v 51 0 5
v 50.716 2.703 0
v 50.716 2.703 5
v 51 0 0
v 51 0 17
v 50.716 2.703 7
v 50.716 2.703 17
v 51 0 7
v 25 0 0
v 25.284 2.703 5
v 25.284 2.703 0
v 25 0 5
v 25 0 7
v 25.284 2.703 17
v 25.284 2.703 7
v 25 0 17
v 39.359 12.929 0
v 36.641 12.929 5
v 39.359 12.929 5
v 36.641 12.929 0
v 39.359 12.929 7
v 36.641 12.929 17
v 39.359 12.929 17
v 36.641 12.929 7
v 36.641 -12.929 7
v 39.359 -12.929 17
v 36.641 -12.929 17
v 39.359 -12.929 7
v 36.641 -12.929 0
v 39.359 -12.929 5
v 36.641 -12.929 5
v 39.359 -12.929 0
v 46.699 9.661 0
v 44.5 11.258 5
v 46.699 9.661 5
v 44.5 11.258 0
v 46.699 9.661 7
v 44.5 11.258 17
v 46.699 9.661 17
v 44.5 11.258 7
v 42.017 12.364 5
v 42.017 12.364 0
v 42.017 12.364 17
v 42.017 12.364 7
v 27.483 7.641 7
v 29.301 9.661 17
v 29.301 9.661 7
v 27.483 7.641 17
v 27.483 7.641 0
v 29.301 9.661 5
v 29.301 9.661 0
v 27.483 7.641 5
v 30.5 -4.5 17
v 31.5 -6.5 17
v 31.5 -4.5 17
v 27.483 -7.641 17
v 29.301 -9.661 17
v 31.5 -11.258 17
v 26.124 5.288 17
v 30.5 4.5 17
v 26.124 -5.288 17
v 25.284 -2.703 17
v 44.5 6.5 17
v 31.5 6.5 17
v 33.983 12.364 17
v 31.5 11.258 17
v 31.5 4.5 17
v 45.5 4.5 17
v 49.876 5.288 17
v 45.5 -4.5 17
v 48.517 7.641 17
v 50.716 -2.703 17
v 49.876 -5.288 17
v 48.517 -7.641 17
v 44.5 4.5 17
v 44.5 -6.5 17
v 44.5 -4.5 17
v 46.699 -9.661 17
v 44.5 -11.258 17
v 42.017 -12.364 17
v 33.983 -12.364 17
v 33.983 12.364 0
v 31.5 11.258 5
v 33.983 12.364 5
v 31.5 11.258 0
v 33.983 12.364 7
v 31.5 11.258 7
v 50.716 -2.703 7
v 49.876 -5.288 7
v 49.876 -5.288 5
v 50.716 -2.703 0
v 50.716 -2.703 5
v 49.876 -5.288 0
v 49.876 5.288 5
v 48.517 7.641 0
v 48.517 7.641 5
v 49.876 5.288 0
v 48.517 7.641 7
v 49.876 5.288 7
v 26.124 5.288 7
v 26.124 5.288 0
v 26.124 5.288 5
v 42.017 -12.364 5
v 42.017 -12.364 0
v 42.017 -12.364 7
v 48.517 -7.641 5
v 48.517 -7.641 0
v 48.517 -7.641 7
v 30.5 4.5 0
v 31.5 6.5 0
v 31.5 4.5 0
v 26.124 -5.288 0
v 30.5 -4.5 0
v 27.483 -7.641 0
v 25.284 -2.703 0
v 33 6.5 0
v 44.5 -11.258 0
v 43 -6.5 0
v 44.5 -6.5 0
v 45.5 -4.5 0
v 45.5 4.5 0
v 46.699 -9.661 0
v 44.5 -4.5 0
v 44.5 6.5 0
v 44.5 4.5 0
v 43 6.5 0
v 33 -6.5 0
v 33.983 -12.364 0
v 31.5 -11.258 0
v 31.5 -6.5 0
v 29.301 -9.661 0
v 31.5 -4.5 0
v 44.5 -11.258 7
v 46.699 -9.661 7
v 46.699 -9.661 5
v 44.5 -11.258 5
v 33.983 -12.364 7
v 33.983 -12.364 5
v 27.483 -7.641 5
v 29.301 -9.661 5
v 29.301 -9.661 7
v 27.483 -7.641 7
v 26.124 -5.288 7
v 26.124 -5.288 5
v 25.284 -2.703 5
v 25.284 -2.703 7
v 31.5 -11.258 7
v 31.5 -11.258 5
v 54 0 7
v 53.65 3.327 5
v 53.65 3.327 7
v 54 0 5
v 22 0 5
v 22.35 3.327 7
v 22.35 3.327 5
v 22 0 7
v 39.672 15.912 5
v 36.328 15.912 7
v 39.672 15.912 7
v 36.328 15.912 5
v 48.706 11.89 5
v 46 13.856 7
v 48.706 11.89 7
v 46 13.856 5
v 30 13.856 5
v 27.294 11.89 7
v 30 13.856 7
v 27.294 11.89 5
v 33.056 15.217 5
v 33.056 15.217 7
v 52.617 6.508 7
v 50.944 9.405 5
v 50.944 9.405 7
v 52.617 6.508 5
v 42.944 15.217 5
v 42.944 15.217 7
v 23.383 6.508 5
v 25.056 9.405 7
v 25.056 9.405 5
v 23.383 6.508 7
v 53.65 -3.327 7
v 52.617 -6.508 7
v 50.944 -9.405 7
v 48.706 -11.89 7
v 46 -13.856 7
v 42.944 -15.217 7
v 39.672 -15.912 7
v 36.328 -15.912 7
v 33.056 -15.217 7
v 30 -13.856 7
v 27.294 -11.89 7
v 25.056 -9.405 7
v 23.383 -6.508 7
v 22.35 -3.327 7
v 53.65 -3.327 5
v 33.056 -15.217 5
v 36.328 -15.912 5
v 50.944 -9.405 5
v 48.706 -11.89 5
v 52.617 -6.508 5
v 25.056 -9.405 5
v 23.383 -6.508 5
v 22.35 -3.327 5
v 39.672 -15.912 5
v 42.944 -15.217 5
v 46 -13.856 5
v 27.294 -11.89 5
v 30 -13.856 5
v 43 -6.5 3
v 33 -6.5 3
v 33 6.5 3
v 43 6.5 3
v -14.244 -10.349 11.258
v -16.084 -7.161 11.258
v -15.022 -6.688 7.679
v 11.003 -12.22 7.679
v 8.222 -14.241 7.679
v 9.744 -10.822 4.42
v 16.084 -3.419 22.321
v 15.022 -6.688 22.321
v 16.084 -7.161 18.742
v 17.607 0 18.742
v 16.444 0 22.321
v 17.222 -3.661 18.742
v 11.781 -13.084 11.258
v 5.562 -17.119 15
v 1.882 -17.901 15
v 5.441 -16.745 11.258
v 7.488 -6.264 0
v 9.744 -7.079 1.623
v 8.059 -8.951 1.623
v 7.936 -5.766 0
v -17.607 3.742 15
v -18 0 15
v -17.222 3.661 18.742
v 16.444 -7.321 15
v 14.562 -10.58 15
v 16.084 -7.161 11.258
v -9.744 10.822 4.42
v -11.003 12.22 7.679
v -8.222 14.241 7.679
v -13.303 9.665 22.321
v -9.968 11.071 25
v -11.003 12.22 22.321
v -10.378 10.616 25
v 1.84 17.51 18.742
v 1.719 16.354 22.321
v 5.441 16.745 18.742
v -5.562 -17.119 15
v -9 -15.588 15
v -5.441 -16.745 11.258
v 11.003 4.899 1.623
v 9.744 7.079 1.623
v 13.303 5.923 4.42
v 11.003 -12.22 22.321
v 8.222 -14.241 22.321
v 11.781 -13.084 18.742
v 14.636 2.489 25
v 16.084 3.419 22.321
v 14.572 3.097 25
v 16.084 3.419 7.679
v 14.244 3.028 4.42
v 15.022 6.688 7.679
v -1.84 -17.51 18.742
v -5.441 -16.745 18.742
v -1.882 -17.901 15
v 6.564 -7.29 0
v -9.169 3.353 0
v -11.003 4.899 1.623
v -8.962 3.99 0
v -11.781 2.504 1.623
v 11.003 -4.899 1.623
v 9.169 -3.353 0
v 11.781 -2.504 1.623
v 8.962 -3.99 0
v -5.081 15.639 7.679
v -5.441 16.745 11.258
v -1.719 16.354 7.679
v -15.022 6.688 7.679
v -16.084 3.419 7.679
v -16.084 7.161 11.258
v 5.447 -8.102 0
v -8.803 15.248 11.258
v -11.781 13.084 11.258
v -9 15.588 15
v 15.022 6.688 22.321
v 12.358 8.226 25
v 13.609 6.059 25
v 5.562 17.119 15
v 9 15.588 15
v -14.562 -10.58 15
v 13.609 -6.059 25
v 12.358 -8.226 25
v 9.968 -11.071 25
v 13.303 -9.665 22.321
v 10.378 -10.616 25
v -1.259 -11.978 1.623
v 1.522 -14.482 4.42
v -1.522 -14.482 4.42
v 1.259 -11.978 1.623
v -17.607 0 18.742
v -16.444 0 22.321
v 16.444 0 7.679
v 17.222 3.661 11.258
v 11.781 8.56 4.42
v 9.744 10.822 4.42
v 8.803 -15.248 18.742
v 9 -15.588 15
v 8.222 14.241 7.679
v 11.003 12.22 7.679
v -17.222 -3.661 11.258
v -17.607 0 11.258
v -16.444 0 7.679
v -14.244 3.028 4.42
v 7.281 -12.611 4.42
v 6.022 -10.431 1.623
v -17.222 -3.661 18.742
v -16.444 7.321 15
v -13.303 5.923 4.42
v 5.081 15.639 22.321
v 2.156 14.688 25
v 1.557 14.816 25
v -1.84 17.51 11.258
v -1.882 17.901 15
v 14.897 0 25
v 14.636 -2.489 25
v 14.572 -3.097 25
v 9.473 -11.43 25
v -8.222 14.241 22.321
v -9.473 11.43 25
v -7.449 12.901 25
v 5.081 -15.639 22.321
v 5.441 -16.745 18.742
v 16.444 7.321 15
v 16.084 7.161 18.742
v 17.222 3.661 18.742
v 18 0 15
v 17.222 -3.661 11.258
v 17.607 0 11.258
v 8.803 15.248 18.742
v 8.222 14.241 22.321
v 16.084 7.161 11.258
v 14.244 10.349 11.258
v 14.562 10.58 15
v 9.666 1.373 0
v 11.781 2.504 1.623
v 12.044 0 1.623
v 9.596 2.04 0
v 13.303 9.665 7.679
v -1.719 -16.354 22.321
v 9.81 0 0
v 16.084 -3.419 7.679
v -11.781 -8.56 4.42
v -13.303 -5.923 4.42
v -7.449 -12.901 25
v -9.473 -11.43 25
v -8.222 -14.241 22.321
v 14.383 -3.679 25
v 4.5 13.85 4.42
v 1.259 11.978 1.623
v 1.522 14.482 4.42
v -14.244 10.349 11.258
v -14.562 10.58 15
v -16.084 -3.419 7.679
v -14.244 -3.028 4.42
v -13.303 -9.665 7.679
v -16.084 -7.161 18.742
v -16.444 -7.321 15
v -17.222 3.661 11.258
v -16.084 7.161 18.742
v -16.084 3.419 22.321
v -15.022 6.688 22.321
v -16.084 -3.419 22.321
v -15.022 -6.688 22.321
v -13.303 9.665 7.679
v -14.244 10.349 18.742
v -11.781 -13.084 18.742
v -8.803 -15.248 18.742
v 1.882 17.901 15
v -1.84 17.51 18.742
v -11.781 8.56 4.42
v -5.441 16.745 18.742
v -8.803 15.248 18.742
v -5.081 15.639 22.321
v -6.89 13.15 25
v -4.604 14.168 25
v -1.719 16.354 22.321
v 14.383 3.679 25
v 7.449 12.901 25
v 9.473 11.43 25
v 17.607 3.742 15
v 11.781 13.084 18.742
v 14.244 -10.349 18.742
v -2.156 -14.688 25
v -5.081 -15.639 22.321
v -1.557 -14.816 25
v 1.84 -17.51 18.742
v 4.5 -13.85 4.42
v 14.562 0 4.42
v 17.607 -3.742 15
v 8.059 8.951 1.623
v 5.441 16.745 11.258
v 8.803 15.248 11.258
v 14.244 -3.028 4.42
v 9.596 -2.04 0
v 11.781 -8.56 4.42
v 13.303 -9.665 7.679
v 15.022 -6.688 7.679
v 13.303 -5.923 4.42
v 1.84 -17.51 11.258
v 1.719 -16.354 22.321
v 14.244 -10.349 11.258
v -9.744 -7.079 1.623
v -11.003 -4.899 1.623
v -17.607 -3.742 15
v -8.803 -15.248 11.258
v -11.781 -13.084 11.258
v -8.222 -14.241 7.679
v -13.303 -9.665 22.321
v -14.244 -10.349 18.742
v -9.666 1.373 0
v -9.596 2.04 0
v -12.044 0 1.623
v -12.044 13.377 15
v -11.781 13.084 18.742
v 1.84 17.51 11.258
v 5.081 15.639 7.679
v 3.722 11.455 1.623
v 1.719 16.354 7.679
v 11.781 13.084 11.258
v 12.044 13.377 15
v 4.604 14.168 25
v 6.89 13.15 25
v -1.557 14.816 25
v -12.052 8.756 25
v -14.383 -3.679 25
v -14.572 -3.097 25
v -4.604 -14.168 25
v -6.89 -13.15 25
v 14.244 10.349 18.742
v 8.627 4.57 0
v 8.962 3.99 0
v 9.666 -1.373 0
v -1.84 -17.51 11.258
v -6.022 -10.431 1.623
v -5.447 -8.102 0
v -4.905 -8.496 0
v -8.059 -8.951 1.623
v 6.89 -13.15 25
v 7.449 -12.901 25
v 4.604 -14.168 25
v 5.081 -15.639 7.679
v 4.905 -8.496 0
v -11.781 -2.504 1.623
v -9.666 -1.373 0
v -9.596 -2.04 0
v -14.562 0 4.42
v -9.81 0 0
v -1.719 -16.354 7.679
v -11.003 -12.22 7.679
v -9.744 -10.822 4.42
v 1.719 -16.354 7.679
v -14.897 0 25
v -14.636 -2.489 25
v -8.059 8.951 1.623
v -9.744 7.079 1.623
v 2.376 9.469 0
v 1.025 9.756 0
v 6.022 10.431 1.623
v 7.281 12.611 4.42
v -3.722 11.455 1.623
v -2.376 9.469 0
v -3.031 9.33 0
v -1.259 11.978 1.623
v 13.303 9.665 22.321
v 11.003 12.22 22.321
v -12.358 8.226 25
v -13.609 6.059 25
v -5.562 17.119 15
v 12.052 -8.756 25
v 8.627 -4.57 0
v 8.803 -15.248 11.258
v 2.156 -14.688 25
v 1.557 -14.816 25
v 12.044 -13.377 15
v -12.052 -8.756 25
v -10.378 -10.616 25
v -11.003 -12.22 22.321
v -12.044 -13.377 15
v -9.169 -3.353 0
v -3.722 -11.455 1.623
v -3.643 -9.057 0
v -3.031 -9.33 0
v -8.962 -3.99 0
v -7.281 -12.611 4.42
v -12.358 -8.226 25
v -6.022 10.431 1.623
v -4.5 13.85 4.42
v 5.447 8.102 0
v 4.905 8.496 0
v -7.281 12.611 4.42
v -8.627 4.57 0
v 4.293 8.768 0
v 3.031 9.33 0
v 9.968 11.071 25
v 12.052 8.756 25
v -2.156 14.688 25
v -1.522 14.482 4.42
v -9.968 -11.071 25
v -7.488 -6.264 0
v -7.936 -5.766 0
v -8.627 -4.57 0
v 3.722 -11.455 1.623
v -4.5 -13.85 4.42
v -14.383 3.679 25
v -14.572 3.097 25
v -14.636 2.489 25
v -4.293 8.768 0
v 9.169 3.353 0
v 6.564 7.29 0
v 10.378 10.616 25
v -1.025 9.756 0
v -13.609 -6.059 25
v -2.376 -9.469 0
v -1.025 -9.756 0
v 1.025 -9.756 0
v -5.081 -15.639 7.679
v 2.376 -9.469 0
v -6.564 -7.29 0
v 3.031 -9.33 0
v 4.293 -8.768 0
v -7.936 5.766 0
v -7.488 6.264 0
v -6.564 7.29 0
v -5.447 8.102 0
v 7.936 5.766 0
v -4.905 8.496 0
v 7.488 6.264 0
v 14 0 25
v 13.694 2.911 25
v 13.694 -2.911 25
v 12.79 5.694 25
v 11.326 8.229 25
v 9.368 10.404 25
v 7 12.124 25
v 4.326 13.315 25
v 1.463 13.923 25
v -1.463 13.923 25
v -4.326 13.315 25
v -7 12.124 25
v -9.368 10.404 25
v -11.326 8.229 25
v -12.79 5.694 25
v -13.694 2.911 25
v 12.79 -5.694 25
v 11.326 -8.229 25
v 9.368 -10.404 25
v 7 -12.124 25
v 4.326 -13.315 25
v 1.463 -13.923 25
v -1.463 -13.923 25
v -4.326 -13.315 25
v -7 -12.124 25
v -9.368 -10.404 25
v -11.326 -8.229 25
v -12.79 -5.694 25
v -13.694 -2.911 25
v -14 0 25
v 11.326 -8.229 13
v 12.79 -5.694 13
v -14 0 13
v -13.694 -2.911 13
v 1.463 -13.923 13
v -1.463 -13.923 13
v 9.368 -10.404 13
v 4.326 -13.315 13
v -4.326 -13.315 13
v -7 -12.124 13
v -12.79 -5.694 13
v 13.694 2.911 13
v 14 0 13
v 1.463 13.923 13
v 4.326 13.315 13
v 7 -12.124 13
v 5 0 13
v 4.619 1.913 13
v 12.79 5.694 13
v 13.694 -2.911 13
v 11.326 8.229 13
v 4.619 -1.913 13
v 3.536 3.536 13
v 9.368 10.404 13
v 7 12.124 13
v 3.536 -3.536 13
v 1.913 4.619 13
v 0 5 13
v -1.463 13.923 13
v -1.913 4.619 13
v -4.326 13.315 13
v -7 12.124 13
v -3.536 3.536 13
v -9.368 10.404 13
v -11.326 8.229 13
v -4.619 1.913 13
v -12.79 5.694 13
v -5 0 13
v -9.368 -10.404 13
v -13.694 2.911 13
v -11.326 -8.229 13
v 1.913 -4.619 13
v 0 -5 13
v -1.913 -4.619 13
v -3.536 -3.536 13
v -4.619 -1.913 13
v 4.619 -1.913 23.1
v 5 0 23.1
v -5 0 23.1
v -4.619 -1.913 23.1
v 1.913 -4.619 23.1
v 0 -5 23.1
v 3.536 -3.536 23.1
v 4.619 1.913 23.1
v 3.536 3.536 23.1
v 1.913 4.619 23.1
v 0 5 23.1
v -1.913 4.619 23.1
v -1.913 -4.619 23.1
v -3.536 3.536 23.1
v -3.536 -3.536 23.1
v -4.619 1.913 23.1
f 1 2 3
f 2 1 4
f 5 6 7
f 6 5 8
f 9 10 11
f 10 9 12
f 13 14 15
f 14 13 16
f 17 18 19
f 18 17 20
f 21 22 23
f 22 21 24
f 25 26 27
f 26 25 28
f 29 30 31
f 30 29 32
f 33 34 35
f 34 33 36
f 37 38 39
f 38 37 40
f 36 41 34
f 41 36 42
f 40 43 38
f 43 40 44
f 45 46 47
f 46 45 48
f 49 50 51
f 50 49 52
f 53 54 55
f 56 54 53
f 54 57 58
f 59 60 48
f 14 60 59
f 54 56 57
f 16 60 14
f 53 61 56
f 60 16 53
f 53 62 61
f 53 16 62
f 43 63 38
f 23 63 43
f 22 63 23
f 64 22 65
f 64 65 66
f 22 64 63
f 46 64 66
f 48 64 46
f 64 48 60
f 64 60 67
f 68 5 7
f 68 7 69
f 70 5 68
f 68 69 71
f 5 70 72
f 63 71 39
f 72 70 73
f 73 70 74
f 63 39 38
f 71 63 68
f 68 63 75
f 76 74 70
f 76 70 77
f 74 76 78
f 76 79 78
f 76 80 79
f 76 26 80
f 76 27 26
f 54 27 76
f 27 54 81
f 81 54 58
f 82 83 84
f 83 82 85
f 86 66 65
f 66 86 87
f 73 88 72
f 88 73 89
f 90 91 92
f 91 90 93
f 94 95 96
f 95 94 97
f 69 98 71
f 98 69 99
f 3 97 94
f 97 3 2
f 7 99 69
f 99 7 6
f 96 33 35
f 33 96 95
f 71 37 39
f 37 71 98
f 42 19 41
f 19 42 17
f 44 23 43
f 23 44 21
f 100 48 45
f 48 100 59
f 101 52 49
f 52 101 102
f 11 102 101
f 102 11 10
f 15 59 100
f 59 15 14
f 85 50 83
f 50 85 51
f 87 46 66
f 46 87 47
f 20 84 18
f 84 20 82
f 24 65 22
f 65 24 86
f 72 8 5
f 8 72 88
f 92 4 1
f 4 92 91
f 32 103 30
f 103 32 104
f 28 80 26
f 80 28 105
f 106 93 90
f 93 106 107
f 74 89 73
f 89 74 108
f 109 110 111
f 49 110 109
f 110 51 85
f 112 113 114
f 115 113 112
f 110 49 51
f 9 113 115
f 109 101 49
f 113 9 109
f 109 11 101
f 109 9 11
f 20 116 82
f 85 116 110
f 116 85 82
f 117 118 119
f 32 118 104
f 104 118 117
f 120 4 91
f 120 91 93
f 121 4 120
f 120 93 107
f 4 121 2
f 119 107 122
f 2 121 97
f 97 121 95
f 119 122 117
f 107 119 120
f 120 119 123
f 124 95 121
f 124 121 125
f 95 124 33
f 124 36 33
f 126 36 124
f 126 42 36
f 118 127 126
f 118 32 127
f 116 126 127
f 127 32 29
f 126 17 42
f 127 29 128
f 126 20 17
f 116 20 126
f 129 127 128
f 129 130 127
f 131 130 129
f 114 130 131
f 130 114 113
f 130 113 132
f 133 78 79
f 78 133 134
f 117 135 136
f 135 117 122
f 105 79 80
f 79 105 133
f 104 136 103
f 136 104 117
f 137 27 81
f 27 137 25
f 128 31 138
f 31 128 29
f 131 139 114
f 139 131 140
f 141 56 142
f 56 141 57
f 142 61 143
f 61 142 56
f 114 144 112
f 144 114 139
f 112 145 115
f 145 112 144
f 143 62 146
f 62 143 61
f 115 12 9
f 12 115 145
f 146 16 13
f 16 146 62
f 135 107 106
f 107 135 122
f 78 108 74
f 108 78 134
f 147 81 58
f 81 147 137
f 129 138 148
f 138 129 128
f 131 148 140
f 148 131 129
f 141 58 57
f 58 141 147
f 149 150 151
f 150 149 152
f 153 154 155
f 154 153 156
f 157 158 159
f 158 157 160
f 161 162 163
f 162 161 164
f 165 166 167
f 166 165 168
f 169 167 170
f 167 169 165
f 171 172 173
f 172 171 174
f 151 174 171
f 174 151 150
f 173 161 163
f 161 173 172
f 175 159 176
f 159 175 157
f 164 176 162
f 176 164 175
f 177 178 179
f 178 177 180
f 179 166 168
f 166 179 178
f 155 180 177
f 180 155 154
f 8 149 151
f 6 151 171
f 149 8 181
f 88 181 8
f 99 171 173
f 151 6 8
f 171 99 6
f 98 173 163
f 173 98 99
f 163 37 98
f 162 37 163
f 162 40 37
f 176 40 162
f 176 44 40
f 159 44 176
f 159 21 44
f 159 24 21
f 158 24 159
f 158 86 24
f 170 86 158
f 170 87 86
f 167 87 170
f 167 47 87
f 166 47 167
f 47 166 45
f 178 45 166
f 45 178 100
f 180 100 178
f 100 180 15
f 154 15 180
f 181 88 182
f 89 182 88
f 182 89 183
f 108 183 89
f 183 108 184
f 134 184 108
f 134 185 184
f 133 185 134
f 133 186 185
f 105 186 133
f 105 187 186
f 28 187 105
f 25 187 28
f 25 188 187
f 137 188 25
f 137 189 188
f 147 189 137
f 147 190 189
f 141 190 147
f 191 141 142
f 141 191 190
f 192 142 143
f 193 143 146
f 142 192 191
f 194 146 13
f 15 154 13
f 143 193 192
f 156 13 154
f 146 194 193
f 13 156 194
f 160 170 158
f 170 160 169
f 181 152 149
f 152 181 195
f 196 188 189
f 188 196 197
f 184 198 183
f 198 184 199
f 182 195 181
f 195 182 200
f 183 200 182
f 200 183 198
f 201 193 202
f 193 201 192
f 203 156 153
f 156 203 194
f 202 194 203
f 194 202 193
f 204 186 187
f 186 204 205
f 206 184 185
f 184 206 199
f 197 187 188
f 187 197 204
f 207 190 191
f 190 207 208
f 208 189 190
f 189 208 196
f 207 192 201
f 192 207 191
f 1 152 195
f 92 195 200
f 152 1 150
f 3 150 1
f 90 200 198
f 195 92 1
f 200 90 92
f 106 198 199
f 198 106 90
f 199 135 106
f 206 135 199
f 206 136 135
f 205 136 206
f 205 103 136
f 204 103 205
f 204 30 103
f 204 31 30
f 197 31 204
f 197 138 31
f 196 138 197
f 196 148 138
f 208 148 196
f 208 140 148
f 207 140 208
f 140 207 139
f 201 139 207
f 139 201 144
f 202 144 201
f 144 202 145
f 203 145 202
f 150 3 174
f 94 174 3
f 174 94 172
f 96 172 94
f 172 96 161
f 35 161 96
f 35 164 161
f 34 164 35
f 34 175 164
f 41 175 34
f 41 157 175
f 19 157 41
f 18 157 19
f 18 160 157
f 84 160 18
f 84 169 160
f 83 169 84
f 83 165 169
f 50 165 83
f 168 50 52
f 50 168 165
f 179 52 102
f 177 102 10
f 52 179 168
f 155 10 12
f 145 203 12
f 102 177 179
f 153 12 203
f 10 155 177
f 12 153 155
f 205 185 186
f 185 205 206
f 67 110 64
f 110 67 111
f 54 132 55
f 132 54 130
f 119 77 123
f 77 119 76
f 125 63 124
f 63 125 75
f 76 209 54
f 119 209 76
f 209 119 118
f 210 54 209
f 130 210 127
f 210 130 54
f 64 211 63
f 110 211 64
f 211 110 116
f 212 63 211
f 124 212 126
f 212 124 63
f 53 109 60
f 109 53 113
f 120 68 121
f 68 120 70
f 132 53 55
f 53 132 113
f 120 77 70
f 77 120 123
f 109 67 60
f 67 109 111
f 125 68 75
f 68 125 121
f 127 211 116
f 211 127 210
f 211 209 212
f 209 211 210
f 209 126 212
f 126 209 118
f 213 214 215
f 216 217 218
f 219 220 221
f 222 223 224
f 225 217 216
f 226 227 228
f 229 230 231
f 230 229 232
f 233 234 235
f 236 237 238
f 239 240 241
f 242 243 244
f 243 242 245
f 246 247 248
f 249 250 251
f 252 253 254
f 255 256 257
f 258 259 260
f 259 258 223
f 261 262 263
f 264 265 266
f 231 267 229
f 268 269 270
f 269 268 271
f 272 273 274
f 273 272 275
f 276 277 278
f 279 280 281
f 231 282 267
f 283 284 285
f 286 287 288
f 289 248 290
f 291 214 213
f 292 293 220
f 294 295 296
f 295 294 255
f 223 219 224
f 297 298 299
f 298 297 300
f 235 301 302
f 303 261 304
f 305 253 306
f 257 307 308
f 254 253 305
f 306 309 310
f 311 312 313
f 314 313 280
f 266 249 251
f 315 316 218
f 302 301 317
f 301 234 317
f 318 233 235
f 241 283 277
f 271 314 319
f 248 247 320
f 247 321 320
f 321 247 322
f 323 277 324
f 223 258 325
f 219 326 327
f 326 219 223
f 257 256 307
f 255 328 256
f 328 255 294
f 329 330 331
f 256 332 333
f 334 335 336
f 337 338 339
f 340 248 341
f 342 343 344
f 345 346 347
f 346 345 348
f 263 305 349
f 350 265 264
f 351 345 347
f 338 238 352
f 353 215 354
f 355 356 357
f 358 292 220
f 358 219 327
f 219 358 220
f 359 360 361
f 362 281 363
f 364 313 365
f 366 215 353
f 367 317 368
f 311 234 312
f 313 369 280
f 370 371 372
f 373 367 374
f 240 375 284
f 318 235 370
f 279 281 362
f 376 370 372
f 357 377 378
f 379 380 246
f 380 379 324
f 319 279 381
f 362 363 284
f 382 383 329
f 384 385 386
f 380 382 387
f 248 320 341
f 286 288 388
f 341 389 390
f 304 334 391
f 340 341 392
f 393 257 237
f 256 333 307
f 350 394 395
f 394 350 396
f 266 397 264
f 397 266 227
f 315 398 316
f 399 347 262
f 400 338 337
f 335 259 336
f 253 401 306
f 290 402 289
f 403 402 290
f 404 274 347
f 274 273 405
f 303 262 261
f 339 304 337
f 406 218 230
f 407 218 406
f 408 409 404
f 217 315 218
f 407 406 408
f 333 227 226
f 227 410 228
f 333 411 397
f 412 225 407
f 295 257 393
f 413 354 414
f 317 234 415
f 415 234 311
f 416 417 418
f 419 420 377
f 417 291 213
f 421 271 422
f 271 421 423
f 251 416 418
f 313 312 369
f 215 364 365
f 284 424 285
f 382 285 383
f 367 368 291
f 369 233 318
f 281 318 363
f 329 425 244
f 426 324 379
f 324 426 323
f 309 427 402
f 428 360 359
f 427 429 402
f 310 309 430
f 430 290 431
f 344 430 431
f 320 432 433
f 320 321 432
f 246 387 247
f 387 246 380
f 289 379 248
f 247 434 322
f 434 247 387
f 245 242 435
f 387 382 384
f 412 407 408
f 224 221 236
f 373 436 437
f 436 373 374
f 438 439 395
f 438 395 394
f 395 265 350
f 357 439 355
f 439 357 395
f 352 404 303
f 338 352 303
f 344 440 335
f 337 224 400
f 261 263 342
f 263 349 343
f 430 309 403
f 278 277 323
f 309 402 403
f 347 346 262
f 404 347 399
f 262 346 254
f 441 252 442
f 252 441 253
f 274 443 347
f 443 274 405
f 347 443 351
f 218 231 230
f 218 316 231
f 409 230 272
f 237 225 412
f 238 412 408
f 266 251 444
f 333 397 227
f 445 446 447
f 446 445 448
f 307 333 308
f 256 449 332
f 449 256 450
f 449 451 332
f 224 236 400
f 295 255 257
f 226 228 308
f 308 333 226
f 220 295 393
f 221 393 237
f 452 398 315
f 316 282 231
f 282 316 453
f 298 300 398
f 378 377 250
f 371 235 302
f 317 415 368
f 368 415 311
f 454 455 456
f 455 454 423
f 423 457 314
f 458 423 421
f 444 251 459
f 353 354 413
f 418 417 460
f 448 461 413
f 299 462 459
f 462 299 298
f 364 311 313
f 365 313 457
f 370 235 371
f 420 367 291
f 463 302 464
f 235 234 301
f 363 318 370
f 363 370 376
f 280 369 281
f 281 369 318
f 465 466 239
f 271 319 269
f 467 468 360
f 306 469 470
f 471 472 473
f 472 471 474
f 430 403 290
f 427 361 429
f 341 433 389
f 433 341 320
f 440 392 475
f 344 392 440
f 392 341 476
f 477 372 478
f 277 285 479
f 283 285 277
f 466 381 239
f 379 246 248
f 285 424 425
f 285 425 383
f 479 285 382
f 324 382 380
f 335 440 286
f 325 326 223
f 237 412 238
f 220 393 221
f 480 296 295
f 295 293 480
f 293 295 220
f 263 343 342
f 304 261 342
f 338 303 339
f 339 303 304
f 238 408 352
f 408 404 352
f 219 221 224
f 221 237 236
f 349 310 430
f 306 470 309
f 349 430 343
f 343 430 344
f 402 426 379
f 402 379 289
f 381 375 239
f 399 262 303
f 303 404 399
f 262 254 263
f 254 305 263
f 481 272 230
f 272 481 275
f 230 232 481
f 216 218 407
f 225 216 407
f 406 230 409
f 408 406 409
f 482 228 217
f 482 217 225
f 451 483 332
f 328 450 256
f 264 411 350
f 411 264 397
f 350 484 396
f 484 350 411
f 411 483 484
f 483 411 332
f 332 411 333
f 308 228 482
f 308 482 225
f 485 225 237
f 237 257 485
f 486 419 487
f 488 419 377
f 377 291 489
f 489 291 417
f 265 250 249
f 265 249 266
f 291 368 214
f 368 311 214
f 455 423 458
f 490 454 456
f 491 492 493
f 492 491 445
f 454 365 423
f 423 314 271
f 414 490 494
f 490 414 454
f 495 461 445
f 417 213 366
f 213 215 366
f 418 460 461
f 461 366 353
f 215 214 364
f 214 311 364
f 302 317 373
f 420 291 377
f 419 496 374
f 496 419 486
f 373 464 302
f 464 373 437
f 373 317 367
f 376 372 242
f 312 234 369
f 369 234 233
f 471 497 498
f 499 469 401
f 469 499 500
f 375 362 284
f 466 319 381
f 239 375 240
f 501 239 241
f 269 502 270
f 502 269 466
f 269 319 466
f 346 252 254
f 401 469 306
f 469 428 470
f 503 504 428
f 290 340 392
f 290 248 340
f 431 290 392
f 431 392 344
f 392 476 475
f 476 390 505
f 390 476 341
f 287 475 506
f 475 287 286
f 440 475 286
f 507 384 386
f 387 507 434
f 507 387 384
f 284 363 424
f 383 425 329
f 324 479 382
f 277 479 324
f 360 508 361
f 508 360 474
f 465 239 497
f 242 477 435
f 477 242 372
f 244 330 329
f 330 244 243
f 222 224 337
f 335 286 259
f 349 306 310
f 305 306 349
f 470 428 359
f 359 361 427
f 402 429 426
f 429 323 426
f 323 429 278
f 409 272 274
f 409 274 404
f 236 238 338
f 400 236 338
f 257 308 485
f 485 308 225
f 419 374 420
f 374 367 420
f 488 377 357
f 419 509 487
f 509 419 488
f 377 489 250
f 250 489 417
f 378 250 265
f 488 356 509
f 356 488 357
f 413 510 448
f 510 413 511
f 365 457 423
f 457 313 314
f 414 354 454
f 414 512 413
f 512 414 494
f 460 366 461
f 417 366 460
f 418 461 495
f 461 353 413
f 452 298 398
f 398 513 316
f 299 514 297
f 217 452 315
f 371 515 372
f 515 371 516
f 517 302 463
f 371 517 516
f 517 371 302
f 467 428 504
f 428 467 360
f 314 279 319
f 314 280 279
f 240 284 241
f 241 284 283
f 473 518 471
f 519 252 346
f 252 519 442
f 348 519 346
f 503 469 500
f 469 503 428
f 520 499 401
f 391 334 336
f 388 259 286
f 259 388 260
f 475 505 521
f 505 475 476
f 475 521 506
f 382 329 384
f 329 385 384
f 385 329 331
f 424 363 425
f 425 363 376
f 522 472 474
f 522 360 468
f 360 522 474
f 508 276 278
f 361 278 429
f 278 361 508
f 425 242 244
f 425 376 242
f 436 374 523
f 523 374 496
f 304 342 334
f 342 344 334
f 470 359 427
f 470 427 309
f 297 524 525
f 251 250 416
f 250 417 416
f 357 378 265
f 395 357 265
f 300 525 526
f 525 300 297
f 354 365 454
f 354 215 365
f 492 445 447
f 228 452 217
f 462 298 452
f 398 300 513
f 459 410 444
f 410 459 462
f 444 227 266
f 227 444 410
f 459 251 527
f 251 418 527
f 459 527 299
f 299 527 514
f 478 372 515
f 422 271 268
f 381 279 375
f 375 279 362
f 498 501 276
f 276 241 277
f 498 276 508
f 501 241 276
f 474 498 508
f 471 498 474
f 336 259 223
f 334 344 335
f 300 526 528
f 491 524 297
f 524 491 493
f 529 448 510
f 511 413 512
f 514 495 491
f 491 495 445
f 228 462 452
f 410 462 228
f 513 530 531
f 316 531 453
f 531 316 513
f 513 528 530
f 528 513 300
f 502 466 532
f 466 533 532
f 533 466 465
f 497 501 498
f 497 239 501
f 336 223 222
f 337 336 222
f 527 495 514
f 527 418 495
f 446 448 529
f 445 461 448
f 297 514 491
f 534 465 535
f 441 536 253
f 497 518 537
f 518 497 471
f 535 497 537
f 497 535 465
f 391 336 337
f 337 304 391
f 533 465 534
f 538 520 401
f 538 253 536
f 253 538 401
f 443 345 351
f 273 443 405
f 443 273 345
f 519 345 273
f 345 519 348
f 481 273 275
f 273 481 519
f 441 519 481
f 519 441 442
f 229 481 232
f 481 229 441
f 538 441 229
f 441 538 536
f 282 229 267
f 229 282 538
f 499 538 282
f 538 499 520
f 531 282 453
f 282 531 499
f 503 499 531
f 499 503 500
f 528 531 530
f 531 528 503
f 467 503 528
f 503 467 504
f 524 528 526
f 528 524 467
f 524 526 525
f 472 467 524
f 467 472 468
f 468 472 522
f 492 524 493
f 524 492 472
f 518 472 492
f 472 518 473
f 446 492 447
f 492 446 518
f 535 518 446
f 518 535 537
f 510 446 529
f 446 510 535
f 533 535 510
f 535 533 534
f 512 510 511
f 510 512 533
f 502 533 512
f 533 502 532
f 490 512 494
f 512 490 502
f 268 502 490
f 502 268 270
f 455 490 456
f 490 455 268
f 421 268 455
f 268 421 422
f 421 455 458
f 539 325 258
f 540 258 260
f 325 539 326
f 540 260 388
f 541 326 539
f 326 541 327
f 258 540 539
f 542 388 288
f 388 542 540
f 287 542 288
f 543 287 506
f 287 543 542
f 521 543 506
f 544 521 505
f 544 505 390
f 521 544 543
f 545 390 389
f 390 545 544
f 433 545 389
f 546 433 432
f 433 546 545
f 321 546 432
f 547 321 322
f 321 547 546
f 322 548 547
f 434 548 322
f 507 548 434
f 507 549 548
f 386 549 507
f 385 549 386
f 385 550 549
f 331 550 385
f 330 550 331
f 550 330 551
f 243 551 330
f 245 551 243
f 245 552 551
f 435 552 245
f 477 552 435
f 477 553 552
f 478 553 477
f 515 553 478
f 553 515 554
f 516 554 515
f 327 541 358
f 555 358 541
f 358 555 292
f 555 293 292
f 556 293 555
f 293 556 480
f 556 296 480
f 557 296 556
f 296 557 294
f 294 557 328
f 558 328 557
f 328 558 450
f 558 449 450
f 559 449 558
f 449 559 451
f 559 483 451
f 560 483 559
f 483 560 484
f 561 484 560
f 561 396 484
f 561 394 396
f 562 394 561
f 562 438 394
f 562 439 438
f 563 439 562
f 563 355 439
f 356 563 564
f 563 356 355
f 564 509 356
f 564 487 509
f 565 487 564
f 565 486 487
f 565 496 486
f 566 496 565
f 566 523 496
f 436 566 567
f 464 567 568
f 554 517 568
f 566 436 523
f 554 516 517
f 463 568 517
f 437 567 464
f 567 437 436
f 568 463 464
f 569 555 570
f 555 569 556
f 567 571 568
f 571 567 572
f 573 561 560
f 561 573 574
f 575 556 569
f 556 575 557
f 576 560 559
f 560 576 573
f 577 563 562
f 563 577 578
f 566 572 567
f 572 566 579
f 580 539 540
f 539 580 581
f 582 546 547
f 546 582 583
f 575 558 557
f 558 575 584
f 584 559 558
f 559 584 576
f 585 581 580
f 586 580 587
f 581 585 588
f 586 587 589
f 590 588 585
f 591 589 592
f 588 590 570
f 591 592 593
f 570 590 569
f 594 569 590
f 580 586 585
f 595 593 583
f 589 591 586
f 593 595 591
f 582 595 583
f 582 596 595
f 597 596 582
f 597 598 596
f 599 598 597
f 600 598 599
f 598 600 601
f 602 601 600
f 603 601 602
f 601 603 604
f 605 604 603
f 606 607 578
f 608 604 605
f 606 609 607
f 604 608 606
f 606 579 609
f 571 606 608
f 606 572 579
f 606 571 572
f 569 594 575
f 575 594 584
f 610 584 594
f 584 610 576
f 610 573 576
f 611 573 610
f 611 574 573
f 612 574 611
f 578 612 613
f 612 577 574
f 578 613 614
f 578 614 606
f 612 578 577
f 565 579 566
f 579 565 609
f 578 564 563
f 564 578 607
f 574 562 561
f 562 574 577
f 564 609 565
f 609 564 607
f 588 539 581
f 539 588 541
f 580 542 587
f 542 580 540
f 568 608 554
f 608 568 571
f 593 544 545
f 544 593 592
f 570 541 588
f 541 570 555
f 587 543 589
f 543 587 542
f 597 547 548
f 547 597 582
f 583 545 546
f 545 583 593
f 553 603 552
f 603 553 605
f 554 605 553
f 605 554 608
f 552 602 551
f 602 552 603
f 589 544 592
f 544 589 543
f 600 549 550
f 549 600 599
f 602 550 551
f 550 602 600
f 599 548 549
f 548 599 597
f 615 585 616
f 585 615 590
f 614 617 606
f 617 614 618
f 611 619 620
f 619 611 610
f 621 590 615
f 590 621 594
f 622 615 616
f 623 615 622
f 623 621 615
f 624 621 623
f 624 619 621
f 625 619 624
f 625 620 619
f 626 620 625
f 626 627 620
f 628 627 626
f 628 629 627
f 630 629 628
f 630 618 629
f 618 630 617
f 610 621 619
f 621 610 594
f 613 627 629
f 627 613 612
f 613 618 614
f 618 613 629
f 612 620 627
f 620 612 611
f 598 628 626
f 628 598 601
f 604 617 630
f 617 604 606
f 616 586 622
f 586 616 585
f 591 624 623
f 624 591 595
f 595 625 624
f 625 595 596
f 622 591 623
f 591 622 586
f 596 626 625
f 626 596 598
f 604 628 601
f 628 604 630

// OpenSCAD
//translate([0, 0, 15]) cylinder(2, 15, 15);
module tallo () {
    difference() {
        union () {
            cylinder(17, 13, 13);
        
            translate([0,0,5]) cylinder(2, 16, 16);
        }
        translate([-6.5, -6.5, 0]) cube([13, 13, 25]);
        translate([-7.5, -4.5, 0]) cube([15, 9, 25]);
    }
    translate([-5, -10, 0]) cube([10, 21, 3]);
}

module cabeza() {
    difference () {
        sphere (18);
        translate([0,0,15]) cylinder(10, 20, 20);
        translate([0,0,-30]) cylinder(20, 20, 20);
        translate([0,0,-30]) cylinder(32, 14, 14);
    }
    translate ([0,0,-8.1]) cylinder(20, 5, 5);
}
translate ([38,0,0]) tallo();

translate ([0,0,15]) rotate([180,0,0]) cabeza ();
